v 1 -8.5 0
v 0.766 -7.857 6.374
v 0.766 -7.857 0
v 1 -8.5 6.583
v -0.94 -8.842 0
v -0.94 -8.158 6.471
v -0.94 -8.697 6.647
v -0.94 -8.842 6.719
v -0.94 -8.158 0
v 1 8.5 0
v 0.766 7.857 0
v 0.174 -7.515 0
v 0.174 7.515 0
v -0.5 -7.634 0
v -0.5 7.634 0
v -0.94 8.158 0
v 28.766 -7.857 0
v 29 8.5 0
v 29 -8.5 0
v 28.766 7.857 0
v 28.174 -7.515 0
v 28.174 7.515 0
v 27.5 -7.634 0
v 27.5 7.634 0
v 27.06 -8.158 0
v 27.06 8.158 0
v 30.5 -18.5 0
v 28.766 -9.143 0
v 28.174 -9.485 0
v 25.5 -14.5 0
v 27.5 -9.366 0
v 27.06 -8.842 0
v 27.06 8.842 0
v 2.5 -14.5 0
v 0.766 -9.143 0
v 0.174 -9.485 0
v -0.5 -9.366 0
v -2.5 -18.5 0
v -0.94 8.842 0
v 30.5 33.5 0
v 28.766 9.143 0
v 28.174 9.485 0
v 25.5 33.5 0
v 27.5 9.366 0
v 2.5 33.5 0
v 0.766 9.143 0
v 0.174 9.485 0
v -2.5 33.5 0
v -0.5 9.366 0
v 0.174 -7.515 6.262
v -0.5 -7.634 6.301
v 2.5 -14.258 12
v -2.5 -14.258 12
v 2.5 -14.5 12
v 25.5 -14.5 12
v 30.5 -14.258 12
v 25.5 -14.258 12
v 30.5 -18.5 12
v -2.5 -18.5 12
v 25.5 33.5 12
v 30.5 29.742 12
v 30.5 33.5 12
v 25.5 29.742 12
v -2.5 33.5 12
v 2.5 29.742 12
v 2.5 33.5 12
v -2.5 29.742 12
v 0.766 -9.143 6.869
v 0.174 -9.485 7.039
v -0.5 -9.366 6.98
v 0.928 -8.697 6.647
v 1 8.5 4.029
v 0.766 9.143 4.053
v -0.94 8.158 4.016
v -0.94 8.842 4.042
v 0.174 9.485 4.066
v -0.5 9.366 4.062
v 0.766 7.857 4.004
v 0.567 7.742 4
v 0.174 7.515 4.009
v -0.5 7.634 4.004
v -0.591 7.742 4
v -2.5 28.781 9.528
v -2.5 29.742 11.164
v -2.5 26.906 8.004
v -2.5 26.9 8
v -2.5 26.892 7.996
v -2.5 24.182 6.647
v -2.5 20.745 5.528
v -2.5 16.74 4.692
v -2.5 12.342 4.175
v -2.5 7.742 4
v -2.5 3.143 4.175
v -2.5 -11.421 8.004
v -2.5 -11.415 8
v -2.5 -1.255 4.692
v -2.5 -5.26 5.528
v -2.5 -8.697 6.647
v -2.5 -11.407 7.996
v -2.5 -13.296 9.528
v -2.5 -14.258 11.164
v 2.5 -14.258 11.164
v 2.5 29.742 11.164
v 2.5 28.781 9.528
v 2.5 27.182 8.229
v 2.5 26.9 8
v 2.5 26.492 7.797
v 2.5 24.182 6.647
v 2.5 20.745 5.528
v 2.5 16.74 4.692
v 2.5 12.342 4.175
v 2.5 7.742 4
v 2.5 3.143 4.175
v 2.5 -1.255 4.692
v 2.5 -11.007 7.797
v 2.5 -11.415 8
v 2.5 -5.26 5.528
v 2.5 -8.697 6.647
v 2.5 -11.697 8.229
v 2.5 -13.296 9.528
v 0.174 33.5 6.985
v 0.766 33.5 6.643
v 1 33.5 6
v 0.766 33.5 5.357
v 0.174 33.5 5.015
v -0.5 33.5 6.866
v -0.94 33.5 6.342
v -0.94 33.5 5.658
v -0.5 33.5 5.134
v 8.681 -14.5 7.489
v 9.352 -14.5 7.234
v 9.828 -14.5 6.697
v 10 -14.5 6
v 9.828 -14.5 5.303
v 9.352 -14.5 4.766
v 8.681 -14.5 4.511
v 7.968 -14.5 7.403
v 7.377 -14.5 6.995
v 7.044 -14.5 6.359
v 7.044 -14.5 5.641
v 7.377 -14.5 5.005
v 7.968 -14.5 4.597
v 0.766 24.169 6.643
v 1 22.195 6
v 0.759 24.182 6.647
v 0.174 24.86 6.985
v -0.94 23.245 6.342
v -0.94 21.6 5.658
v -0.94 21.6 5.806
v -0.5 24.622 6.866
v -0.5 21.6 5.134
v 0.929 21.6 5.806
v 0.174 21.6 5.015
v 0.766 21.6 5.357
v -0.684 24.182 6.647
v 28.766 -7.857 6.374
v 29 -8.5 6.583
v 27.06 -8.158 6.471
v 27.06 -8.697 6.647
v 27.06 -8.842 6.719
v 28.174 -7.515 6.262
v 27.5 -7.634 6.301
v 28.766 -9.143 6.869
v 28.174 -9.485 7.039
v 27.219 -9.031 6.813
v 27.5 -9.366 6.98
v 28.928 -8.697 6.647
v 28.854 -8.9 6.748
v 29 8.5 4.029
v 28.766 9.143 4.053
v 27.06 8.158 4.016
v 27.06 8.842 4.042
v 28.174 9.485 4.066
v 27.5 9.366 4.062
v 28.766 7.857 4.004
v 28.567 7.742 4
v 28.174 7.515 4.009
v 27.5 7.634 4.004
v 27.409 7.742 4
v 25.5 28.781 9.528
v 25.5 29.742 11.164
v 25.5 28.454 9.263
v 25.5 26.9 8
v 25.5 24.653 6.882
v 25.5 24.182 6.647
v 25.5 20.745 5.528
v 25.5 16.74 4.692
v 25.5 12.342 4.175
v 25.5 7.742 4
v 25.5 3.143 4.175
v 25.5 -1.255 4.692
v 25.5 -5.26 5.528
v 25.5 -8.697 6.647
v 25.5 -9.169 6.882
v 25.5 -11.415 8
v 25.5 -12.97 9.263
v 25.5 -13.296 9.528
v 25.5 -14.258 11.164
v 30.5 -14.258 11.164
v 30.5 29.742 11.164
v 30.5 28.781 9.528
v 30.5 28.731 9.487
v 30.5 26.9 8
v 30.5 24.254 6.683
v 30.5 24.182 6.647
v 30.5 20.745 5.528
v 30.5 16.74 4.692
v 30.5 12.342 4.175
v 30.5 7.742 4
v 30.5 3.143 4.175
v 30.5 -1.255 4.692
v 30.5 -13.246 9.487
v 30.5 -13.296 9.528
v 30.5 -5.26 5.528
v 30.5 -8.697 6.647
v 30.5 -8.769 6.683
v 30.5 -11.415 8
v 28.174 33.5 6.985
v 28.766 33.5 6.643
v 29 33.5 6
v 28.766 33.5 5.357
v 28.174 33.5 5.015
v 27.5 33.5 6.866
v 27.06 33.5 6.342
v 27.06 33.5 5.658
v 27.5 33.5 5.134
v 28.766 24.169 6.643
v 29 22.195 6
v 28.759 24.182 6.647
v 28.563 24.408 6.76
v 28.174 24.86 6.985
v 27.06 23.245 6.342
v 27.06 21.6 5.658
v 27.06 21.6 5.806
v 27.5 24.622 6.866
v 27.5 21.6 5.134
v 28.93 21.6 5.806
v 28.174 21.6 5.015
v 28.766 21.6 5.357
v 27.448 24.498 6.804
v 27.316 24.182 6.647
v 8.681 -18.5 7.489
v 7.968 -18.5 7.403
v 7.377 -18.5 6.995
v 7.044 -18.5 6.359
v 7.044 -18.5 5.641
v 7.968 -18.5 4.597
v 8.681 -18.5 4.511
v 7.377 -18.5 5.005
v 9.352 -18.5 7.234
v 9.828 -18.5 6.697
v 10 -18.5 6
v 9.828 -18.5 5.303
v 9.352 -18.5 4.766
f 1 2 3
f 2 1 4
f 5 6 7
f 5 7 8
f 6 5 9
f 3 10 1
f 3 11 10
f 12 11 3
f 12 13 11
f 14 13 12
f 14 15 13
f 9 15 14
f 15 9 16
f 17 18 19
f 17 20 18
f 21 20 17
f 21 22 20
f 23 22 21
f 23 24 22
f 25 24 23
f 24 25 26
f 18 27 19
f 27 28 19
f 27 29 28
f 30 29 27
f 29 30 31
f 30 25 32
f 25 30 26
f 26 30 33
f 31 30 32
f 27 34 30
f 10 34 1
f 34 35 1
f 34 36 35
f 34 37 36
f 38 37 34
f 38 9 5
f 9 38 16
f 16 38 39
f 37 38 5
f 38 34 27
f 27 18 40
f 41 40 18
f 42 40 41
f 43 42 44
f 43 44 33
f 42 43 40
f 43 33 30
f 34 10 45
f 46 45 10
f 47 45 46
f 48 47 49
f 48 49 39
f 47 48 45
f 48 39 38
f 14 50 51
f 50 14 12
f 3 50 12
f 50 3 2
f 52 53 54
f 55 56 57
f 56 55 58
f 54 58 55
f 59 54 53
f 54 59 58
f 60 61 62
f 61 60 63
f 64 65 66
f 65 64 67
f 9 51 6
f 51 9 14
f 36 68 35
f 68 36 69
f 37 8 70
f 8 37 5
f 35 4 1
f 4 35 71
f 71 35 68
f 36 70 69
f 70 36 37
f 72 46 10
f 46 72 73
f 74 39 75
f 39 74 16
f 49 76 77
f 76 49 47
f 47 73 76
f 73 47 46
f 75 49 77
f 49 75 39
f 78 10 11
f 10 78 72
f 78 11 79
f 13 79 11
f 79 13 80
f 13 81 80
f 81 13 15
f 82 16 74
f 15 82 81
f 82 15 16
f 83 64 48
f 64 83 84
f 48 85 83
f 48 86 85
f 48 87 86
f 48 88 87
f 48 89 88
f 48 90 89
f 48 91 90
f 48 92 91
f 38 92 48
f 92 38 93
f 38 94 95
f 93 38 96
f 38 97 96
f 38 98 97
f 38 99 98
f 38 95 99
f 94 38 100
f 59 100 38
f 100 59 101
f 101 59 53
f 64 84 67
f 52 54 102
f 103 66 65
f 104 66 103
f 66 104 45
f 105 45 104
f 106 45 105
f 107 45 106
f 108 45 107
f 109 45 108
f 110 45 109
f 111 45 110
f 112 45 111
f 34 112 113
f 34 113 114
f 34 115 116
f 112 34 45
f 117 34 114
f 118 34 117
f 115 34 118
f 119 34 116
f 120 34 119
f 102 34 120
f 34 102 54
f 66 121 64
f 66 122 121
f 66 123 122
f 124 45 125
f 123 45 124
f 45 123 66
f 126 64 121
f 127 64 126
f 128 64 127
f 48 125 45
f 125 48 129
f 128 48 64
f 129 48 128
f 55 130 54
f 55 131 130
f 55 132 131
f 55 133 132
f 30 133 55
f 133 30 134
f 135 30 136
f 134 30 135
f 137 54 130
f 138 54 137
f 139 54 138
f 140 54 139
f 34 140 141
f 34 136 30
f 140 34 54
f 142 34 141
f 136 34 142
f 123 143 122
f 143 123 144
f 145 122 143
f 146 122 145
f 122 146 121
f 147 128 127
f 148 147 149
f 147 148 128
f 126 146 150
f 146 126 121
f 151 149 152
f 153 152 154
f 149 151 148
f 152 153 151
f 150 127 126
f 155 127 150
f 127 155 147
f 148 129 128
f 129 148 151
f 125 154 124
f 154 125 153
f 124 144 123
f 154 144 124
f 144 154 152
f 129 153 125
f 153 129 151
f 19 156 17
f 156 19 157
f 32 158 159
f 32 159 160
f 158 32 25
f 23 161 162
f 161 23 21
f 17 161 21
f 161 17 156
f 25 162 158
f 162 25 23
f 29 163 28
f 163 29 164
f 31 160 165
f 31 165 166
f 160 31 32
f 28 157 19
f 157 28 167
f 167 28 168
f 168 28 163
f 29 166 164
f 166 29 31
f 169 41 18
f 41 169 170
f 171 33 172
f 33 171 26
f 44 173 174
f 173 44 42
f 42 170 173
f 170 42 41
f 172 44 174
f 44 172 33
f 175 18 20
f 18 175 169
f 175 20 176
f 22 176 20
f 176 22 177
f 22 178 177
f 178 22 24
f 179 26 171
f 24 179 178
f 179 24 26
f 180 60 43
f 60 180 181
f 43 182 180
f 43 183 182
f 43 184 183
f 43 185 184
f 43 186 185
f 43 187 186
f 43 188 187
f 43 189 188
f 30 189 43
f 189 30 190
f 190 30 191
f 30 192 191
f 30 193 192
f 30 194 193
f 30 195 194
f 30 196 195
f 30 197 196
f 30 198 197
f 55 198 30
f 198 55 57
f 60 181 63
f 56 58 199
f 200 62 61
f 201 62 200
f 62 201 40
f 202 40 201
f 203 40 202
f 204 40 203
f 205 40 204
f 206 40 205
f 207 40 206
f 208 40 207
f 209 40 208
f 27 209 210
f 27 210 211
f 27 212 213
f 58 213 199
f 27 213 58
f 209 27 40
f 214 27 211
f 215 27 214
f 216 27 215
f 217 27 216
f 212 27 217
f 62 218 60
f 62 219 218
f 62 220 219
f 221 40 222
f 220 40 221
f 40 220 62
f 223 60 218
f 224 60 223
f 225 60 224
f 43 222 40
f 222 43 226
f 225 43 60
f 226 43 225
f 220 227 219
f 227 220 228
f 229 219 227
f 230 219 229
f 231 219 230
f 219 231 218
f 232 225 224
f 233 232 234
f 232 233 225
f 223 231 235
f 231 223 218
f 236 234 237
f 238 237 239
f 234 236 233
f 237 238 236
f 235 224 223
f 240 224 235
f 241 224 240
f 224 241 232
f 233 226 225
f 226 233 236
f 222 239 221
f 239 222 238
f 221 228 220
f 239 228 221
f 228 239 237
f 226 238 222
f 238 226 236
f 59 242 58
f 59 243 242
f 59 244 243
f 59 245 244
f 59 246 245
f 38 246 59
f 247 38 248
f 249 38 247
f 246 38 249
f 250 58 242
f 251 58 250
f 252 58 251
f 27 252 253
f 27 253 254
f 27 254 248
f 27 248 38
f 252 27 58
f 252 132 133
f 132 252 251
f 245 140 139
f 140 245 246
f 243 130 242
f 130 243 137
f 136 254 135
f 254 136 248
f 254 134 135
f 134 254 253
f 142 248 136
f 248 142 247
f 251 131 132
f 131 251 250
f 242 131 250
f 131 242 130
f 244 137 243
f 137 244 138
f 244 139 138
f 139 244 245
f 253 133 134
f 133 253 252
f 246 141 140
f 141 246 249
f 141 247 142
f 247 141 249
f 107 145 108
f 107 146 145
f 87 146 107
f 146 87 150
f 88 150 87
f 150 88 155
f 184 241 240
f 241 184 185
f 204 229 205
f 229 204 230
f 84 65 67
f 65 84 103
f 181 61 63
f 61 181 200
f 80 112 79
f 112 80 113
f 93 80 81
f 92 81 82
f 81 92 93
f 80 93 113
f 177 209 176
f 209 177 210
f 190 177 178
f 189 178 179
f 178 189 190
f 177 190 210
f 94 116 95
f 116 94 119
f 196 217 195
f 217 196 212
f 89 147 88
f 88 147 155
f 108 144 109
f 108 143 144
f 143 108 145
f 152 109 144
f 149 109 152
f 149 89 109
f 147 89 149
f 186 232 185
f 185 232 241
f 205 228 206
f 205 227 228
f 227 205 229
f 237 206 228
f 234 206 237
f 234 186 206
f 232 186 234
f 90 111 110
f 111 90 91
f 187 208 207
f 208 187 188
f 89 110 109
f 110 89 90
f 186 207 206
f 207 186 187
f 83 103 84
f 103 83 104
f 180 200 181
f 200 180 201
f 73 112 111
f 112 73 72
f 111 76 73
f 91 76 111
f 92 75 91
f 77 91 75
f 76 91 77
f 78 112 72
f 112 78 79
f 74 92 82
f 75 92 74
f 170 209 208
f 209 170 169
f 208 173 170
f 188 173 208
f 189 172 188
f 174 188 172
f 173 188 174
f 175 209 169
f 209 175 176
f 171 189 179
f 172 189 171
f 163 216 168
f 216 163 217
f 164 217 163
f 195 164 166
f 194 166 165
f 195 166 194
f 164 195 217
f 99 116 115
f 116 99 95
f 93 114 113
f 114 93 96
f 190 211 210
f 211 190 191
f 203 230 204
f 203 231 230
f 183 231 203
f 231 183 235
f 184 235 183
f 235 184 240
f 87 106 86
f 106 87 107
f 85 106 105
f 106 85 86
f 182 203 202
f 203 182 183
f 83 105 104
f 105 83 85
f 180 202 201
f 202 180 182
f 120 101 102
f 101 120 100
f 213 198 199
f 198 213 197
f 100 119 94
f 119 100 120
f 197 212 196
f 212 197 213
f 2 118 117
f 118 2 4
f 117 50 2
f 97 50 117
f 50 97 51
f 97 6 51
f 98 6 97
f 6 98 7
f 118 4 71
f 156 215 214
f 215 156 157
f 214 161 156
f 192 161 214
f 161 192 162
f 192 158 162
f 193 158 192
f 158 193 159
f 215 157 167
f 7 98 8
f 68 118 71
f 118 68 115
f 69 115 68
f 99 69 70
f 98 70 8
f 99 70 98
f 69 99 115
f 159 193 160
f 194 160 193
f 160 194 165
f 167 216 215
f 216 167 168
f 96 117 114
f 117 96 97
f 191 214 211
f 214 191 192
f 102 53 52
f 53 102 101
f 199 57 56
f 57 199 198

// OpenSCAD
$fs=.75;

difference() {
	union() {
		difference() {
			union() {
				translate(v = [0, -14.5000000000, 0]) {
					translate(v = [0.0000000000, 14.5000000000, 6.0000000000]) {
						translate(v = [-2.5000000000, -14.5000000000, -6.0000000000]) {
							cube(size = [5.0000000000, 29.0000000000, 12.0000000000]);
						}
					}
				}
				union() {
					translate(v = [0, 14.5000000000, 0]) {
						translate(v = [0.0000000000, 9.5000000000, 6.0000000000]) {
							translate(v = [-2.5000000000, -9.5000000000, -6.0000000000]) {
								cube(size = [5.0000000000, 19.0000000000, 12.0000000000]);
							}
						}
					}
					translate(v = [0, 33.5000000000, 0]) {
						translate(v = [0.0000000000, -6.0000000000, 6.0000000000]) {
							translate(v = [-2.5000000000, -6.0000000000, -6.0000000000]) {
								cube(size = [5.0000000000, 12.0000000000, 12.0000000000]);
							}
						}
					}
				}
			}
			translate(v = [0, -14.5000000000, 0]) {
				union() {
					translate(v = [0, 6.0000000000, 0]) {
						cylinder(d = 2.0000000000, h = 12.0000000000);
					}
					translate(v = [0, 23.0000000000, 0]) {
						cylinder(d = 2.0000000000, h = 12.0000000000);
					}
				}
			}
			#translate(v = [0, 33.6000000000, 6.0000000000]) {
				rotate(a = [90, 0, 0]) {
					cylinder(d = 2.0000000000, h = 12.0000000000);
				}
			}
		}
		translate(v = [28.0000000000, 0, 0]) {
			difference() {
				union() {
					translate(v = [0, -14.5000000000, 0]) {
						translate(v = [0.0000000000, 14.5000000000, 6.0000000000]) {
							translate(v = [-2.5000000000, -14.5000000000, -6.0000000000]) {
								cube(size = [5.0000000000, 29.0000000000, 12.0000000000]);
							}
						}
					}
					union() {
						translate(v = [0, 14.5000000000, 0]) {
							translate(v = [0.0000000000, 9.5000000000, 6.0000000000]) {
								translate(v = [-2.5000000000, -9.5000000000, -6.0000000000]) {
									cube(size = [5.0000000000, 19.0000000000, 12.0000000000]);
								}
							}
						}
						translate(v = [0, 33.5000000000, 0]) {
							translate(v = [0.0000000000, -6.0000000000, 6.0000000000]) {
								translate(v = [-2.5000000000, -6.0000000000, -6.0000000000]) {
									cube(size = [5.0000000000, 12.0000000000, 12.0000000000]);
								}
							}
						}
					}
				}
				translate(v = [0, -14.5000000000, 0]) {
					union() {
						translate(v = [0, 6.0000000000, 0]) {
							cylinder(d = 2.0000000000, h = 12.0000000000);
						}
						translate(v = [0, 23.0000000000, 0]) {
							cylinder(d = 2.0000000000, h = 12.0000000000);
						}
					}
				}
				#translate(v = [0, 33.6000000000, 6.0000000000]) {
					rotate(a = [90, 0, 0]) {
						cylinder(d = 2.0000000000, h = 12.0000000000);
					}
				}
			}
		}
		difference() {
			translate(v = [-2.5000000000, -14.5000000000, 0]) {
				translate(v = [16.5000000000, -2.0000000000, 6.0000000000]) {
					translate(v = [-16.5000000000, -2.0000000000, -6.0000000000]) {
						cube(size = [33.0000000000, 4.0000000000, 12.0000000000]);
					}
				}
			}
			translate(v = [8.5000000000, -14.5000000000, 6.0000000000]) {
				rotate(a = [90, 0, 0]) {
					cylinder(d = 3, h = 12.0000000000);
				}
			}
		}
	}
	#resize(newsize = [0, 44, 0]) {
		translate(v = [-2.6000000000, 2.8000000000, 12.0000000000]) {
			rotate(a = [0, 90, 0]) {
				cylinder(h = 34.0000000000, r = 8);
			}
		}
	}
}
/***********************************************
*********      SolidPython code:      **********
************************************************
 
from solid import *
from solid import extensions
from math import *

class Object:
    pass

servo = Object()
servo.width = 12.0
servo.height = 23.0
servo.wingL = 5.0
servo.holeD = 2.0
servo.wingH = 19.0
servo.wingThk = 4.0

thk= servo.width
servoSpace = 5.0
w = servo.width*2 + servoSpace

def screwHole():
	return cylinder(d=servo.holeD,h=servo.width)

def bar2(): 
	return cube([servo.wingL,w,thk]).align('y-','z-').move(y=-w/2.)
bar2bar = cube([w,servoSpace-1,thk]).align('x-','z-')
bar2Holes = (screwHole().move(y=servo.width/2.)+ screwHole().move(y= w-servo.width/2.)).move(y=-w/2.)

def bar3():
	return ( cube([servo.wingL, servo.wingH,thk]).align('y-','z-').move(y=servo.width+servoSpace/2)
		     + cube([servo.wingL, thk, servo.width]).align('y+','z-').move(y=servo.width+servoSpace/2+servo.wingH)
		    )
	         
bar3Hole = screwHole().rot(x=90).move(y=servo.width+servoSpace/2+servo.wingH+.1, z = servo.width/2).debug()
_3rdServo = bar3() + bar3().move(x=servo.height+servo.wingL)

_3rdAxis = (cube([servo.height+2*servo.wingL, servo.wingThk,servo.width]).align('x-','y+','z-').move(x=-servo.wingL/2,y=-w/2.)
	        - cylinder(d=3, h = thk).rot(x=90).move(x=+servo.wingL/2.+servo.width/2,y=-w/2,z=servo.width/2))

def bar():
	return bar2() + bar3() - bar2Holes - bar3Hole

foo = cylinder(8,servo.height+2*servo.wingL+1).rot(y=90).move(x=-servo.wingL/2-.1,y=2.8,z=thk).resize([0,44,0]).debug()
scene = bar() + bar().move(x=servo.height+servo.wingL) + _3rdAxis - foo

scad_render_to_file(scene, 'preview.scad', '$fs=.75;') 
 
************************************************/
